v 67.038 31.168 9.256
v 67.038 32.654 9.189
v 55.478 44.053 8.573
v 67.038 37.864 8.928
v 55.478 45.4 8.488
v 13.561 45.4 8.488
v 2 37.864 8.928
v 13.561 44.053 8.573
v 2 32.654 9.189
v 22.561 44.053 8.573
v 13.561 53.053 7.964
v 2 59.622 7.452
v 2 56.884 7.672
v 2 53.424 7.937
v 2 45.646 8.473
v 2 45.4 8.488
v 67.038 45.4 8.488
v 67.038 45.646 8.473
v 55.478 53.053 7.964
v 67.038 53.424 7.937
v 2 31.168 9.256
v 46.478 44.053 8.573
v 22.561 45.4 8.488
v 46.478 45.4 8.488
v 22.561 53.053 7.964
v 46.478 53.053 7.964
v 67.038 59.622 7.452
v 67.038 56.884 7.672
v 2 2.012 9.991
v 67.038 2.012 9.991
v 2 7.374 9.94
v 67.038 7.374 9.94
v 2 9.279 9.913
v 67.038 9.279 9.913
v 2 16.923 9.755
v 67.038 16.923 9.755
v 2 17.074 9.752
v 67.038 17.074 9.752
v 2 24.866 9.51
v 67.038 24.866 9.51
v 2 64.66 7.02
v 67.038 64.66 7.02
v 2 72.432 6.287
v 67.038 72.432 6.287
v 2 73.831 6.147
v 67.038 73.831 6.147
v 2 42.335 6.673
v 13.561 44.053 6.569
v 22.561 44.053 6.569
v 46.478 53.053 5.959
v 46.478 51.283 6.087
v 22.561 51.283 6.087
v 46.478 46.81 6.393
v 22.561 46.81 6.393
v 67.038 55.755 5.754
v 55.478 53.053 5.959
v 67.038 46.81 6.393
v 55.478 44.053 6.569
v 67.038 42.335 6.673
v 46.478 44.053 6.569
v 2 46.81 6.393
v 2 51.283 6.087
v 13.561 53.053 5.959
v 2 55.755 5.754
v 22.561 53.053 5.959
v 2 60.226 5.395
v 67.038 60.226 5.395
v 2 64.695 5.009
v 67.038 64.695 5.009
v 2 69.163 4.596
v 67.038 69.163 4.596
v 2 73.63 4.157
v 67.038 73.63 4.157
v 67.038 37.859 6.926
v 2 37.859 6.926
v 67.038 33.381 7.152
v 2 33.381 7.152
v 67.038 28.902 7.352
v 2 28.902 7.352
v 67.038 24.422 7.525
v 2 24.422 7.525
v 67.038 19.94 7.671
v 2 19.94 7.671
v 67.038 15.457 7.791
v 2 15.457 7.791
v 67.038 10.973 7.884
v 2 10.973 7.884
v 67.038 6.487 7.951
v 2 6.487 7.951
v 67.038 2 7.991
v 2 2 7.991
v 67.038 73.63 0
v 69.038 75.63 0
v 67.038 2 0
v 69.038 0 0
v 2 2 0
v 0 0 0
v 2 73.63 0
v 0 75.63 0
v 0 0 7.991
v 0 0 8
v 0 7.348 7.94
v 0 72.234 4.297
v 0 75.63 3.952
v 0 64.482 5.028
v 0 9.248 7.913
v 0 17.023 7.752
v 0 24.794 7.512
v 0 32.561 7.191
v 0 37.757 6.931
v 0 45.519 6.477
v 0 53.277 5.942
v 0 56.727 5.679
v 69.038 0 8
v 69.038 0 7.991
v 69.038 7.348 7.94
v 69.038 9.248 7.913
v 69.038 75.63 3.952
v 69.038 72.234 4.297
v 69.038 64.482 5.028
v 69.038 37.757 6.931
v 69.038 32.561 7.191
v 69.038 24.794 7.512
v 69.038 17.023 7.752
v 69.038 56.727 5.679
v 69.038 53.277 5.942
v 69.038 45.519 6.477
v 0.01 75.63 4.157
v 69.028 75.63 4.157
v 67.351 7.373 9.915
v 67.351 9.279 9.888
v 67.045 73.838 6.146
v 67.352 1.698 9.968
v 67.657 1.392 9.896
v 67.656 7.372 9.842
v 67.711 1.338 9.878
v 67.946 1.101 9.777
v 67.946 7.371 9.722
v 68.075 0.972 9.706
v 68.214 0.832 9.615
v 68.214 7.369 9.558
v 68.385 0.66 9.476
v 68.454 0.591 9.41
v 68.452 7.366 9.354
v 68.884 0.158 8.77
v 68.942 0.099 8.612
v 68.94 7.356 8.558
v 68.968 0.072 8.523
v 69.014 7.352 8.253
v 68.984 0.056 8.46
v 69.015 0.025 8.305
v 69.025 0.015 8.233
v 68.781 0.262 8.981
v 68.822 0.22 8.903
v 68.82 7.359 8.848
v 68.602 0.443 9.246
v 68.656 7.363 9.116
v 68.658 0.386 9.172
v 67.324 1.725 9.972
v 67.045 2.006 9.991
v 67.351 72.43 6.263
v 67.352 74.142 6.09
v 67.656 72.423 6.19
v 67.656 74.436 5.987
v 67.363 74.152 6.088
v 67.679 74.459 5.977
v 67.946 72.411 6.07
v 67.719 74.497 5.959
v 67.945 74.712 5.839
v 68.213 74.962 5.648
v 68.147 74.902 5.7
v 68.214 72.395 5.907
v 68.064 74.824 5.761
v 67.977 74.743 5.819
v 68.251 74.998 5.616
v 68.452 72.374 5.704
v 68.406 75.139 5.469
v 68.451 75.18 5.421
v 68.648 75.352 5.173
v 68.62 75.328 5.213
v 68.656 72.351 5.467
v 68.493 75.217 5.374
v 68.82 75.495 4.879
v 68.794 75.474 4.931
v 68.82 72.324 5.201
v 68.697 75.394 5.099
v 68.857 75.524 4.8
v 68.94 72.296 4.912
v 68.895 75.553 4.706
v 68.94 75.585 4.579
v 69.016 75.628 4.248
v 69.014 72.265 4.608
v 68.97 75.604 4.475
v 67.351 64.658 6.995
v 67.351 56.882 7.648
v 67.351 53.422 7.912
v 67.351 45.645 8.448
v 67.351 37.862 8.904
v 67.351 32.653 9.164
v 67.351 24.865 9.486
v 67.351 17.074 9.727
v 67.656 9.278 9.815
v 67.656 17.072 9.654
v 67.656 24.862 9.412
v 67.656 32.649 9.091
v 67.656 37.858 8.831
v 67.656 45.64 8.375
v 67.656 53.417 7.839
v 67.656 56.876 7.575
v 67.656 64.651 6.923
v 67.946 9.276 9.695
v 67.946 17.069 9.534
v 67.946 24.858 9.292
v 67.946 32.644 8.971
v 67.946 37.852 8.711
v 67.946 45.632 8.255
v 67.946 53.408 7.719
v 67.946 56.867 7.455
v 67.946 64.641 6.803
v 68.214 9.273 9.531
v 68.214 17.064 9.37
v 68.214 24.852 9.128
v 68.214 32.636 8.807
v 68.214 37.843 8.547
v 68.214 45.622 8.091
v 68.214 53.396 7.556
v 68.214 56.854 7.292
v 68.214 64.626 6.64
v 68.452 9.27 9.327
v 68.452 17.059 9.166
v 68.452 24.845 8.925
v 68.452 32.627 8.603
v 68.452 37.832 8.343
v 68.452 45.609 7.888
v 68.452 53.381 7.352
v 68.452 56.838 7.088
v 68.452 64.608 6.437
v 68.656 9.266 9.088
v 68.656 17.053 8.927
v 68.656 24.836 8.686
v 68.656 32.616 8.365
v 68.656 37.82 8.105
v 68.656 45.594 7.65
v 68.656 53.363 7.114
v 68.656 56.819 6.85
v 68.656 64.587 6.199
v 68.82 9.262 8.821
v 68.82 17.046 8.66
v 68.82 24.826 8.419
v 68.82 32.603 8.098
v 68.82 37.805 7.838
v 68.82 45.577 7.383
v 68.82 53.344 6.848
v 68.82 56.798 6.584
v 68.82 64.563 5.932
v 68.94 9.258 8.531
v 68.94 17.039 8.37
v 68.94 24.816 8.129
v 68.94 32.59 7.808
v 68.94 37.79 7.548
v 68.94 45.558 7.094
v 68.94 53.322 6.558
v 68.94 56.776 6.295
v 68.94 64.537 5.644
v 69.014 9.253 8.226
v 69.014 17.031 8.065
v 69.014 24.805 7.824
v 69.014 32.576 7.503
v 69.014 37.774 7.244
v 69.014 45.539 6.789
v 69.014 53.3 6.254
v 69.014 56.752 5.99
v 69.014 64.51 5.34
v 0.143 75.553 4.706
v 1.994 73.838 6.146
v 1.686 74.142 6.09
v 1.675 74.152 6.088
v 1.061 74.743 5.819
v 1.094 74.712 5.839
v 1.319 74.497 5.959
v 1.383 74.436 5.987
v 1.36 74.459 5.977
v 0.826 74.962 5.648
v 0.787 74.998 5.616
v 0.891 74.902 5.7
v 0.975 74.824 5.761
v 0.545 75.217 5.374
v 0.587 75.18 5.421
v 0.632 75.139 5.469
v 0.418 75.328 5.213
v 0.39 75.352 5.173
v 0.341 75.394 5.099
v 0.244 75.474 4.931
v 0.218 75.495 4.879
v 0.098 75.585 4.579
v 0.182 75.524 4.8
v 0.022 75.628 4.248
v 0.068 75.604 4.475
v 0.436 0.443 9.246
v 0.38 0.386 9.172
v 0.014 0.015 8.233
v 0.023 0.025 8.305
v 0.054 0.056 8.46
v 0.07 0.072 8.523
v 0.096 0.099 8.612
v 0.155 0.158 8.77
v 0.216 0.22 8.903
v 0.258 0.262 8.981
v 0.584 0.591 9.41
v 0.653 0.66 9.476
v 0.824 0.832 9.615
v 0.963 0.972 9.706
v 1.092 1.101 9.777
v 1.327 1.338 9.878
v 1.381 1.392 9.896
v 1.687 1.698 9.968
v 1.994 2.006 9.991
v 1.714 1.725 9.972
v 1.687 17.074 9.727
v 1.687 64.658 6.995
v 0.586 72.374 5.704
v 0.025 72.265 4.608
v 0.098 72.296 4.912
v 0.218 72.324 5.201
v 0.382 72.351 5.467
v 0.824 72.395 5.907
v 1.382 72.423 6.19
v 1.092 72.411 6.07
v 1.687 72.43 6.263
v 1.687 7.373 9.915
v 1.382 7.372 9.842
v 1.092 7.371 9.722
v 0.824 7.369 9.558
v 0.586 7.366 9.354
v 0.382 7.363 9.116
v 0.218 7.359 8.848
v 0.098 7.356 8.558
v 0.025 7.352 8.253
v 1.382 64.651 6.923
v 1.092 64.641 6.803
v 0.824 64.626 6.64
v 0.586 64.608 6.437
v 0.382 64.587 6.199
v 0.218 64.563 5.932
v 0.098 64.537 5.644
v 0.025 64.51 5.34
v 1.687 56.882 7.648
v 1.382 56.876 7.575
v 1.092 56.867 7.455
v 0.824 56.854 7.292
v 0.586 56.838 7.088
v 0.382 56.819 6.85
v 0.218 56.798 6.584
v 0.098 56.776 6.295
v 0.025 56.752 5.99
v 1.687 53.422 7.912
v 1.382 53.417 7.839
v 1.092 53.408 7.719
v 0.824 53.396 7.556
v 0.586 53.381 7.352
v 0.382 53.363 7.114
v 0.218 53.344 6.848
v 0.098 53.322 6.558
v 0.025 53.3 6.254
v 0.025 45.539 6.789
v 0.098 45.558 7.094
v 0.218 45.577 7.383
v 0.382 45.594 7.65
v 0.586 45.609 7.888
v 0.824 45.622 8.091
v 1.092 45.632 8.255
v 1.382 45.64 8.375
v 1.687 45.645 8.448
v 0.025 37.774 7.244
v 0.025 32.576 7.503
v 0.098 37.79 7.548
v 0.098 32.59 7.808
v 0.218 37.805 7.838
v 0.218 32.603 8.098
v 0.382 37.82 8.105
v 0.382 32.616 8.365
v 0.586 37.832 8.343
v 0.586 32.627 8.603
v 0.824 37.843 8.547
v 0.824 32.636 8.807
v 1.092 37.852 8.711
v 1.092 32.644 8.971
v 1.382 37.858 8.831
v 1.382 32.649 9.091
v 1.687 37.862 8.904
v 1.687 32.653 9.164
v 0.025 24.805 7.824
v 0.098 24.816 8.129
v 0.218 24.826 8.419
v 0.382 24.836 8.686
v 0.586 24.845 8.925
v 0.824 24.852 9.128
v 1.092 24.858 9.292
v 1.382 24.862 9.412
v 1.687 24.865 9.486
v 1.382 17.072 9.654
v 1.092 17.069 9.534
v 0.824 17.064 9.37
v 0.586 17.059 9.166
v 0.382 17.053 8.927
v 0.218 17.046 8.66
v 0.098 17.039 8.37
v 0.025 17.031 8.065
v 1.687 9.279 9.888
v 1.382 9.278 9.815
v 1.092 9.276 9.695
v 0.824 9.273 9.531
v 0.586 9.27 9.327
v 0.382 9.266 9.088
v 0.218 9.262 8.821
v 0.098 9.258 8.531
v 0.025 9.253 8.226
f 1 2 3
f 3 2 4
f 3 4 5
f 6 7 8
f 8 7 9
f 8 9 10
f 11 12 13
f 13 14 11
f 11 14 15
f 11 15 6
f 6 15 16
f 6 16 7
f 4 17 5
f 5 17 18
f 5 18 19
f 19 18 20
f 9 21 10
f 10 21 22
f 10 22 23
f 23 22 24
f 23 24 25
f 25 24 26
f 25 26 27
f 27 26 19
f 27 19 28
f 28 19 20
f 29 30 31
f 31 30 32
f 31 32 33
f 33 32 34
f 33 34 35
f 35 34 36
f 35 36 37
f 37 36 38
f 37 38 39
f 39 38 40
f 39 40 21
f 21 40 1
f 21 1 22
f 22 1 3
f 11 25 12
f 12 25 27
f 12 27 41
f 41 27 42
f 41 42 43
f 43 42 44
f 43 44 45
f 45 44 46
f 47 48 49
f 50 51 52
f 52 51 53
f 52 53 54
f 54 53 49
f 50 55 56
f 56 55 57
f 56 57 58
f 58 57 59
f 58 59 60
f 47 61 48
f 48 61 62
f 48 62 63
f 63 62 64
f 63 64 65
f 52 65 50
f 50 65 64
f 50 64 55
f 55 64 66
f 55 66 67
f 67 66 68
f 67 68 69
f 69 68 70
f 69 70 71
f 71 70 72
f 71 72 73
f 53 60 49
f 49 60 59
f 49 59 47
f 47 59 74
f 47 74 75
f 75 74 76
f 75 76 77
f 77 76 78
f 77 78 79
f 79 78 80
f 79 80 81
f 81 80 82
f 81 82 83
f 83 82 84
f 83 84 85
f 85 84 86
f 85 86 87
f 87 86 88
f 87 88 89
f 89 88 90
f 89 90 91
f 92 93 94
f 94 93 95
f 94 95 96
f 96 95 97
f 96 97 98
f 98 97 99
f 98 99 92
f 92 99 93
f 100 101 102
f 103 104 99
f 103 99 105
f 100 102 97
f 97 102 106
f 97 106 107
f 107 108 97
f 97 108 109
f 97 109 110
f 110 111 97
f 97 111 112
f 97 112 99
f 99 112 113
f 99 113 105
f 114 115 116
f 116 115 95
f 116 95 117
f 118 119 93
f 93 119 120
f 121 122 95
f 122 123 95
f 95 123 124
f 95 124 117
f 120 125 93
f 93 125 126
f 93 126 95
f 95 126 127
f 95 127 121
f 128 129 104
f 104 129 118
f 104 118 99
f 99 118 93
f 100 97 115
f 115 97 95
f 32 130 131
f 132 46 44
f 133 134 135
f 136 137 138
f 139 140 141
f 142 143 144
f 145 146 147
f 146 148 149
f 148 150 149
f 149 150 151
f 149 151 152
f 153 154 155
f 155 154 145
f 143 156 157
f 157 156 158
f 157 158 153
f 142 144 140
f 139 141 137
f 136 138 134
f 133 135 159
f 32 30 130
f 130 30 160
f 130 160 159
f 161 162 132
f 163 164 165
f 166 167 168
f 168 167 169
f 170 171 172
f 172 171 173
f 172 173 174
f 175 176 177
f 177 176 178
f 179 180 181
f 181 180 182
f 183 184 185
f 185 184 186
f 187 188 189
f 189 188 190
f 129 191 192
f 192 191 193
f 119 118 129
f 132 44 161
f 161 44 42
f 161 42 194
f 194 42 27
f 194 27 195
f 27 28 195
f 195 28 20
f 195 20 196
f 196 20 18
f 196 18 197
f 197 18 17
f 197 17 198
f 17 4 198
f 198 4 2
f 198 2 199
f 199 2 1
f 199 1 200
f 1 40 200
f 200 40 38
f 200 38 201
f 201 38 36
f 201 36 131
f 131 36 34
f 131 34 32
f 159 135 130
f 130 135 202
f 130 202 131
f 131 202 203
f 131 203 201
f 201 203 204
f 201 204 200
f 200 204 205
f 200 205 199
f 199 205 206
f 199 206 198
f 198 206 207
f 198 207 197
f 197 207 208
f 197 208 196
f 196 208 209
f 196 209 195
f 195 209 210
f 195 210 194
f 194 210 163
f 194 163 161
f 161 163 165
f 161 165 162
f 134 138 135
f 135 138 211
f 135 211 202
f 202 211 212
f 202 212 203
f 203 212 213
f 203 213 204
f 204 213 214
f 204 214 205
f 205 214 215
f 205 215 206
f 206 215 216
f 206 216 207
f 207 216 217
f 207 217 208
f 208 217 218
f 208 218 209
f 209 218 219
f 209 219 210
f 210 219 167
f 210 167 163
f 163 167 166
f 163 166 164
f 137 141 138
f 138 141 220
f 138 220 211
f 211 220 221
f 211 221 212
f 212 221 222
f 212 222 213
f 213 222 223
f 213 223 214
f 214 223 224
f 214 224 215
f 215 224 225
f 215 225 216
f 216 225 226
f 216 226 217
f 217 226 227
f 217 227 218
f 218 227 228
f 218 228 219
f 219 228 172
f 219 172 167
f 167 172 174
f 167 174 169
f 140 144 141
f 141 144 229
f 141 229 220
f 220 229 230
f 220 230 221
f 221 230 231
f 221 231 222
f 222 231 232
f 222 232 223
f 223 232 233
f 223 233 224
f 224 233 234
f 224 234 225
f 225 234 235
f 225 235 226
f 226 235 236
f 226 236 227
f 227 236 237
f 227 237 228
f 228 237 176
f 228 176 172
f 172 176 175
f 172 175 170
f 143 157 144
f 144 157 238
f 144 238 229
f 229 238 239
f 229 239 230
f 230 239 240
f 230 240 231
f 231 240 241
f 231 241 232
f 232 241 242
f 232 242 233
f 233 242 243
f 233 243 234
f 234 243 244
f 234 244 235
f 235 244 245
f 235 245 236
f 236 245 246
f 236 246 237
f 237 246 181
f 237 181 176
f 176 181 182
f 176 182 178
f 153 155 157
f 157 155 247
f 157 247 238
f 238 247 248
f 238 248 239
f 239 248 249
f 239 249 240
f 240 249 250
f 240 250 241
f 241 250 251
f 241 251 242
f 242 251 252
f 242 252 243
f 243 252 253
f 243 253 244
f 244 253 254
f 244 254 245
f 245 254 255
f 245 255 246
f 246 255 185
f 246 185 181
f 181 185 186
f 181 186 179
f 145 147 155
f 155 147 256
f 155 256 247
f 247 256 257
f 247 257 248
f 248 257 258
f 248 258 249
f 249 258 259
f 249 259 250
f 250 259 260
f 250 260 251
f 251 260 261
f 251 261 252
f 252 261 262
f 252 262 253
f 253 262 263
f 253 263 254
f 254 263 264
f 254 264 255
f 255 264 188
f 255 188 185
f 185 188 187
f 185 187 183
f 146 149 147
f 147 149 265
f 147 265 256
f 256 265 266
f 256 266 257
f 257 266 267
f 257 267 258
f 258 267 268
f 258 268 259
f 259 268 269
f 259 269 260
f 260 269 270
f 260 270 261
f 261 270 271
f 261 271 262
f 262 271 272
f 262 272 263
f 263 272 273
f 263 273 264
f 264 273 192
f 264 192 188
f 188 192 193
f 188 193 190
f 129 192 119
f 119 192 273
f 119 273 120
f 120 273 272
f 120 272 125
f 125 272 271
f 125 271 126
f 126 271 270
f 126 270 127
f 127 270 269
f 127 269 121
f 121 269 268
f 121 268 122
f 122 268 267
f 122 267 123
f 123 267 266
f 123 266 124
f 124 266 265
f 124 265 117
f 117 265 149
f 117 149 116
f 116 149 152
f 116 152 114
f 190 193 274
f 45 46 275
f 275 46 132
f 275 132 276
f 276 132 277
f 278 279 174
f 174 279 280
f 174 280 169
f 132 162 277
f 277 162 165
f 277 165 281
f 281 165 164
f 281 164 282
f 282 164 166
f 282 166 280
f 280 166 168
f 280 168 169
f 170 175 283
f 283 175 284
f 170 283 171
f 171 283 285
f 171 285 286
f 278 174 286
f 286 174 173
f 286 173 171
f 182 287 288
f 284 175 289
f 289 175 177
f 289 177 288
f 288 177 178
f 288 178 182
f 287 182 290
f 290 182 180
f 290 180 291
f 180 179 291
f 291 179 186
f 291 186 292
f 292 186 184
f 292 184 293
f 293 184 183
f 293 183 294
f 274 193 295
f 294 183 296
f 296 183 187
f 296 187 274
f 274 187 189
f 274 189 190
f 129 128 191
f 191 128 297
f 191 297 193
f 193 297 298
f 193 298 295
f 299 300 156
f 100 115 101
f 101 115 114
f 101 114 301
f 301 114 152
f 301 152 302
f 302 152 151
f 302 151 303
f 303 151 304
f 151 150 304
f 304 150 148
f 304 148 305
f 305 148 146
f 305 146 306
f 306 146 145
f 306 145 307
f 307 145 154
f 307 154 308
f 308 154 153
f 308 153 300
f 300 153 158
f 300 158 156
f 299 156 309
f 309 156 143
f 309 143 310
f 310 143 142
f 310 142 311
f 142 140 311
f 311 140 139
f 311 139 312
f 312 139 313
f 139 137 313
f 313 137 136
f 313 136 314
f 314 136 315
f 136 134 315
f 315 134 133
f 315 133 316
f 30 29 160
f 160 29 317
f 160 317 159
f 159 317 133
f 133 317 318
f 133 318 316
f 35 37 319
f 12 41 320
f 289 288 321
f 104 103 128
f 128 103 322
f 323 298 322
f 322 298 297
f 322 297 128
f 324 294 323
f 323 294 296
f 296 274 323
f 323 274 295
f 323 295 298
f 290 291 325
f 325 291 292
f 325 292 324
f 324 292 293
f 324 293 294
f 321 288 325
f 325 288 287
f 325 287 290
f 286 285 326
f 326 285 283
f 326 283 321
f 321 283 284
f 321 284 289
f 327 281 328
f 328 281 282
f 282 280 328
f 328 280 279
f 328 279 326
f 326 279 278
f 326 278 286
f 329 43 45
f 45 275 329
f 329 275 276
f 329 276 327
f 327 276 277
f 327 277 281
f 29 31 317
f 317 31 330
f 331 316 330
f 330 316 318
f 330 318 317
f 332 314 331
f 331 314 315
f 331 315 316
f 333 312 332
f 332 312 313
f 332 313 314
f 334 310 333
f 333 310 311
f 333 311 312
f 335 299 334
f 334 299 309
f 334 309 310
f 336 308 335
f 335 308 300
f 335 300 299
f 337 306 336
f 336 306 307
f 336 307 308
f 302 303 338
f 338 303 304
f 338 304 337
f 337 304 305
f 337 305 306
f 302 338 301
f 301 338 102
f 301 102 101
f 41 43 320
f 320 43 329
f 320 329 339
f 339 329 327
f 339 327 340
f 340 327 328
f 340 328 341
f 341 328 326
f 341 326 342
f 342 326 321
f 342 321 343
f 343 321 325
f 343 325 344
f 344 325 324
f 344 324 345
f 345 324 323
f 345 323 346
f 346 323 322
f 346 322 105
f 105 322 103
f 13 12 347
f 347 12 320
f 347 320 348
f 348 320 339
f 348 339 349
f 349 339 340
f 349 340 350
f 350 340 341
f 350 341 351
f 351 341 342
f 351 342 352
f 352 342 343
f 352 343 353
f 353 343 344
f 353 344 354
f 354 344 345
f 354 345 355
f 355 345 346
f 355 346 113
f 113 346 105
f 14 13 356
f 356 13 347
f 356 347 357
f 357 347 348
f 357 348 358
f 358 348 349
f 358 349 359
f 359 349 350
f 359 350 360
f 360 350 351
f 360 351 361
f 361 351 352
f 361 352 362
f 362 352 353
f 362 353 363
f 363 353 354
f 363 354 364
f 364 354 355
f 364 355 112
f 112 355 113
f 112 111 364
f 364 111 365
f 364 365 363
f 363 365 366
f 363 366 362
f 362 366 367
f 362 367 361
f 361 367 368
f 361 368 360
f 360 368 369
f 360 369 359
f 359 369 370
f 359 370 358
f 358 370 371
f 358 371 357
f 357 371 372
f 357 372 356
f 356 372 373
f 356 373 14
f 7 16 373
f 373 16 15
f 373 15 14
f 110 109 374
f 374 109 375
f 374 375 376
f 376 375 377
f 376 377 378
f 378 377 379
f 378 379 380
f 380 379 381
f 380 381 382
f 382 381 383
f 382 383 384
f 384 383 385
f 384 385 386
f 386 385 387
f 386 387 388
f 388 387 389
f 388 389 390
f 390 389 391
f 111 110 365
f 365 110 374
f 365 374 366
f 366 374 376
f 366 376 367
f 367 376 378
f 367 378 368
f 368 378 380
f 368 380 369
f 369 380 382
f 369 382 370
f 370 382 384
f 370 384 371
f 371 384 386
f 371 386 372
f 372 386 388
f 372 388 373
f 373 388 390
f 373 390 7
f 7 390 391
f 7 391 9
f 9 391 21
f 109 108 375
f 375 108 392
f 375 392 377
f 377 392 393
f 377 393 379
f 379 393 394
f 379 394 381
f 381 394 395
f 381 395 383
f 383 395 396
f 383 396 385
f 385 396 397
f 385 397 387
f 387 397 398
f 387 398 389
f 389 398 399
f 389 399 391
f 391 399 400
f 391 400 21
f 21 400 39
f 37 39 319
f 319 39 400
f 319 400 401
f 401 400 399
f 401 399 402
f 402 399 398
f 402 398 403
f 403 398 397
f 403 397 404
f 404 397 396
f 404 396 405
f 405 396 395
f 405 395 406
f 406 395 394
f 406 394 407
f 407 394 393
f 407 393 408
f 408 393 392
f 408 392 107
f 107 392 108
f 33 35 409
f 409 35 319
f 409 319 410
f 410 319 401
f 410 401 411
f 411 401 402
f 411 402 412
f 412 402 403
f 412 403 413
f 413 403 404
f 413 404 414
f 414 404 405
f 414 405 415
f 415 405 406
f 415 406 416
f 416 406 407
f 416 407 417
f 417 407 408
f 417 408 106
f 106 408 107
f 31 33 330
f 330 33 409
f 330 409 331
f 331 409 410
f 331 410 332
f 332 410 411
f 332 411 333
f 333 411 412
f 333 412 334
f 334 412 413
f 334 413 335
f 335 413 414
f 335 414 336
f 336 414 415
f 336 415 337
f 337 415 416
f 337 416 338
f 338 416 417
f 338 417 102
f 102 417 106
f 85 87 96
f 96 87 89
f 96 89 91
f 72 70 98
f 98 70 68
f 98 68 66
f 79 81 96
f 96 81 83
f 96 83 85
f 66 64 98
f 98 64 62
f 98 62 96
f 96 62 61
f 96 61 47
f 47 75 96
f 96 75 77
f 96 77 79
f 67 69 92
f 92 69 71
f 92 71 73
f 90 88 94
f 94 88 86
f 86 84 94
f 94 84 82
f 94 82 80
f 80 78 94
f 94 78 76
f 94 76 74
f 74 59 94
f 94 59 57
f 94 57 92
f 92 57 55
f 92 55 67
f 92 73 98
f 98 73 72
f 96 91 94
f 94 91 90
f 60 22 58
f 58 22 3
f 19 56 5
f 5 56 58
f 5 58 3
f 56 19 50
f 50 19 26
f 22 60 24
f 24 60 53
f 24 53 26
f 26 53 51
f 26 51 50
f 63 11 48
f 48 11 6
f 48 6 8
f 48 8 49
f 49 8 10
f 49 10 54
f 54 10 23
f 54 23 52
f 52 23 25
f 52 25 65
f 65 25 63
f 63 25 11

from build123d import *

# Parameters (mm, degrees)
SKETCH_1_W          = 69.038205547
SKETCH_1_H          = 75.629640719
EXTRUDE_1_DEPTH     = 10
CUT_EXTRUDE_1_DEPTH = 103.8888545
FILLET_1_R          = 2
SHELL_START         = 2
SHELL_1_DEPTH       = 65.038205547
SKETCH_3_W          = 9
SKETCH_3_H          = 9
CUT_EXTRUDE_2_DEPTH = 103.887957646


# Read off the part's stored shape, not the designer's step: 쉘1
with BuildPart() as part:
    # 스케치1 → 보스-돌출1 (new body)
    with BuildSketch(Plane.XY):
        with Locations((34.519102774, 37.81482036)):
            Rectangle(SKETCH_1_W, SKETCH_1_H)
    extrude(amount=EXTRUDE_1_DEPTH)

    # 스케치2 → 컷-돌출1 (cut, through all)
    with BuildSketch(Plane(origin=(69.038205547, 0, 0), x_dir=(0, 0, -1), z_dir=(1, 0, 0))):
        with BuildLine():
            Line((-10, 75.629640719), (-10, 0))
            add(Edge.make_bspline(
                [(-5.96238454, 75.629640719), (-9.875617916, 37.91260995), (-10, 0)],
                knots=[0, 0, 0, 1, 1, 1], degree=2))
            Line((-5.96238454, 75.629640719), (-10, 75.629640719))
        make_face()
    extrude(amount=-CUT_EXTRUDE_1_DEPTH, mode=Mode.SUBTRACT)

    # 필렛1
    fillet_1_edges = [part.edges().sort_by_distance(p)[0] for p in [
        (69.038205547, 37.865383105, 8.928316045),
        (34.519102774, 75.629640719, 5.96238454),
        (0, 37.865383105, 8.928316045),
        (34.519102774, 0, 10),
    ]]
    fillet(fillet_1_edges, radius=FILLET_1_R)

    # 쉘1 outline → 쉘1 (cut)
    with BuildSketch(Plane.YZ.offset(SHELL_START)):
        with BuildLine():
            Line((73.629640719, 0), (73.62964072, 4.156994713))
            add(Edge.make_bspline(
                [(73.62964072, 4.156994713), (55.766087317, 5.967380338), (37.873438197, 7.209785835), (19.951481081, 7.884254009), (1.999999998, 7.9907666)],
                knots=[0.023838454, 0.023838454, 0.023838454, 0.023838454, 0.023838454, 0.973465237, 0.973465237, 0.973465237, 0.973465237, 0.973465237], degree=4))
            Line((1.999999998, 7.9907666), (2, 0))
            Line((2, 0), (73.629640719, 0))
        make_face()
    extrude(amount=SHELL_1_DEPTH, mode=Mode.SUBTRACT)

    # 스케치3 → 컷-돌출2 (cut, through all)
    with BuildSketch(Plane.XY):
        with Locations((18.060506117, 48.552575582)):
            Rectangle(SKETCH_3_W, SKETCH_3_H)
        with Locations((50.97769943, 48.552575582)):
            Rectangle(SKETCH_3_W, SKETCH_3_H)
    extrude(amount=CUT_EXTRUDE_2_DEPTH, mode=Mode.SUBTRACT)


solid = part.part
